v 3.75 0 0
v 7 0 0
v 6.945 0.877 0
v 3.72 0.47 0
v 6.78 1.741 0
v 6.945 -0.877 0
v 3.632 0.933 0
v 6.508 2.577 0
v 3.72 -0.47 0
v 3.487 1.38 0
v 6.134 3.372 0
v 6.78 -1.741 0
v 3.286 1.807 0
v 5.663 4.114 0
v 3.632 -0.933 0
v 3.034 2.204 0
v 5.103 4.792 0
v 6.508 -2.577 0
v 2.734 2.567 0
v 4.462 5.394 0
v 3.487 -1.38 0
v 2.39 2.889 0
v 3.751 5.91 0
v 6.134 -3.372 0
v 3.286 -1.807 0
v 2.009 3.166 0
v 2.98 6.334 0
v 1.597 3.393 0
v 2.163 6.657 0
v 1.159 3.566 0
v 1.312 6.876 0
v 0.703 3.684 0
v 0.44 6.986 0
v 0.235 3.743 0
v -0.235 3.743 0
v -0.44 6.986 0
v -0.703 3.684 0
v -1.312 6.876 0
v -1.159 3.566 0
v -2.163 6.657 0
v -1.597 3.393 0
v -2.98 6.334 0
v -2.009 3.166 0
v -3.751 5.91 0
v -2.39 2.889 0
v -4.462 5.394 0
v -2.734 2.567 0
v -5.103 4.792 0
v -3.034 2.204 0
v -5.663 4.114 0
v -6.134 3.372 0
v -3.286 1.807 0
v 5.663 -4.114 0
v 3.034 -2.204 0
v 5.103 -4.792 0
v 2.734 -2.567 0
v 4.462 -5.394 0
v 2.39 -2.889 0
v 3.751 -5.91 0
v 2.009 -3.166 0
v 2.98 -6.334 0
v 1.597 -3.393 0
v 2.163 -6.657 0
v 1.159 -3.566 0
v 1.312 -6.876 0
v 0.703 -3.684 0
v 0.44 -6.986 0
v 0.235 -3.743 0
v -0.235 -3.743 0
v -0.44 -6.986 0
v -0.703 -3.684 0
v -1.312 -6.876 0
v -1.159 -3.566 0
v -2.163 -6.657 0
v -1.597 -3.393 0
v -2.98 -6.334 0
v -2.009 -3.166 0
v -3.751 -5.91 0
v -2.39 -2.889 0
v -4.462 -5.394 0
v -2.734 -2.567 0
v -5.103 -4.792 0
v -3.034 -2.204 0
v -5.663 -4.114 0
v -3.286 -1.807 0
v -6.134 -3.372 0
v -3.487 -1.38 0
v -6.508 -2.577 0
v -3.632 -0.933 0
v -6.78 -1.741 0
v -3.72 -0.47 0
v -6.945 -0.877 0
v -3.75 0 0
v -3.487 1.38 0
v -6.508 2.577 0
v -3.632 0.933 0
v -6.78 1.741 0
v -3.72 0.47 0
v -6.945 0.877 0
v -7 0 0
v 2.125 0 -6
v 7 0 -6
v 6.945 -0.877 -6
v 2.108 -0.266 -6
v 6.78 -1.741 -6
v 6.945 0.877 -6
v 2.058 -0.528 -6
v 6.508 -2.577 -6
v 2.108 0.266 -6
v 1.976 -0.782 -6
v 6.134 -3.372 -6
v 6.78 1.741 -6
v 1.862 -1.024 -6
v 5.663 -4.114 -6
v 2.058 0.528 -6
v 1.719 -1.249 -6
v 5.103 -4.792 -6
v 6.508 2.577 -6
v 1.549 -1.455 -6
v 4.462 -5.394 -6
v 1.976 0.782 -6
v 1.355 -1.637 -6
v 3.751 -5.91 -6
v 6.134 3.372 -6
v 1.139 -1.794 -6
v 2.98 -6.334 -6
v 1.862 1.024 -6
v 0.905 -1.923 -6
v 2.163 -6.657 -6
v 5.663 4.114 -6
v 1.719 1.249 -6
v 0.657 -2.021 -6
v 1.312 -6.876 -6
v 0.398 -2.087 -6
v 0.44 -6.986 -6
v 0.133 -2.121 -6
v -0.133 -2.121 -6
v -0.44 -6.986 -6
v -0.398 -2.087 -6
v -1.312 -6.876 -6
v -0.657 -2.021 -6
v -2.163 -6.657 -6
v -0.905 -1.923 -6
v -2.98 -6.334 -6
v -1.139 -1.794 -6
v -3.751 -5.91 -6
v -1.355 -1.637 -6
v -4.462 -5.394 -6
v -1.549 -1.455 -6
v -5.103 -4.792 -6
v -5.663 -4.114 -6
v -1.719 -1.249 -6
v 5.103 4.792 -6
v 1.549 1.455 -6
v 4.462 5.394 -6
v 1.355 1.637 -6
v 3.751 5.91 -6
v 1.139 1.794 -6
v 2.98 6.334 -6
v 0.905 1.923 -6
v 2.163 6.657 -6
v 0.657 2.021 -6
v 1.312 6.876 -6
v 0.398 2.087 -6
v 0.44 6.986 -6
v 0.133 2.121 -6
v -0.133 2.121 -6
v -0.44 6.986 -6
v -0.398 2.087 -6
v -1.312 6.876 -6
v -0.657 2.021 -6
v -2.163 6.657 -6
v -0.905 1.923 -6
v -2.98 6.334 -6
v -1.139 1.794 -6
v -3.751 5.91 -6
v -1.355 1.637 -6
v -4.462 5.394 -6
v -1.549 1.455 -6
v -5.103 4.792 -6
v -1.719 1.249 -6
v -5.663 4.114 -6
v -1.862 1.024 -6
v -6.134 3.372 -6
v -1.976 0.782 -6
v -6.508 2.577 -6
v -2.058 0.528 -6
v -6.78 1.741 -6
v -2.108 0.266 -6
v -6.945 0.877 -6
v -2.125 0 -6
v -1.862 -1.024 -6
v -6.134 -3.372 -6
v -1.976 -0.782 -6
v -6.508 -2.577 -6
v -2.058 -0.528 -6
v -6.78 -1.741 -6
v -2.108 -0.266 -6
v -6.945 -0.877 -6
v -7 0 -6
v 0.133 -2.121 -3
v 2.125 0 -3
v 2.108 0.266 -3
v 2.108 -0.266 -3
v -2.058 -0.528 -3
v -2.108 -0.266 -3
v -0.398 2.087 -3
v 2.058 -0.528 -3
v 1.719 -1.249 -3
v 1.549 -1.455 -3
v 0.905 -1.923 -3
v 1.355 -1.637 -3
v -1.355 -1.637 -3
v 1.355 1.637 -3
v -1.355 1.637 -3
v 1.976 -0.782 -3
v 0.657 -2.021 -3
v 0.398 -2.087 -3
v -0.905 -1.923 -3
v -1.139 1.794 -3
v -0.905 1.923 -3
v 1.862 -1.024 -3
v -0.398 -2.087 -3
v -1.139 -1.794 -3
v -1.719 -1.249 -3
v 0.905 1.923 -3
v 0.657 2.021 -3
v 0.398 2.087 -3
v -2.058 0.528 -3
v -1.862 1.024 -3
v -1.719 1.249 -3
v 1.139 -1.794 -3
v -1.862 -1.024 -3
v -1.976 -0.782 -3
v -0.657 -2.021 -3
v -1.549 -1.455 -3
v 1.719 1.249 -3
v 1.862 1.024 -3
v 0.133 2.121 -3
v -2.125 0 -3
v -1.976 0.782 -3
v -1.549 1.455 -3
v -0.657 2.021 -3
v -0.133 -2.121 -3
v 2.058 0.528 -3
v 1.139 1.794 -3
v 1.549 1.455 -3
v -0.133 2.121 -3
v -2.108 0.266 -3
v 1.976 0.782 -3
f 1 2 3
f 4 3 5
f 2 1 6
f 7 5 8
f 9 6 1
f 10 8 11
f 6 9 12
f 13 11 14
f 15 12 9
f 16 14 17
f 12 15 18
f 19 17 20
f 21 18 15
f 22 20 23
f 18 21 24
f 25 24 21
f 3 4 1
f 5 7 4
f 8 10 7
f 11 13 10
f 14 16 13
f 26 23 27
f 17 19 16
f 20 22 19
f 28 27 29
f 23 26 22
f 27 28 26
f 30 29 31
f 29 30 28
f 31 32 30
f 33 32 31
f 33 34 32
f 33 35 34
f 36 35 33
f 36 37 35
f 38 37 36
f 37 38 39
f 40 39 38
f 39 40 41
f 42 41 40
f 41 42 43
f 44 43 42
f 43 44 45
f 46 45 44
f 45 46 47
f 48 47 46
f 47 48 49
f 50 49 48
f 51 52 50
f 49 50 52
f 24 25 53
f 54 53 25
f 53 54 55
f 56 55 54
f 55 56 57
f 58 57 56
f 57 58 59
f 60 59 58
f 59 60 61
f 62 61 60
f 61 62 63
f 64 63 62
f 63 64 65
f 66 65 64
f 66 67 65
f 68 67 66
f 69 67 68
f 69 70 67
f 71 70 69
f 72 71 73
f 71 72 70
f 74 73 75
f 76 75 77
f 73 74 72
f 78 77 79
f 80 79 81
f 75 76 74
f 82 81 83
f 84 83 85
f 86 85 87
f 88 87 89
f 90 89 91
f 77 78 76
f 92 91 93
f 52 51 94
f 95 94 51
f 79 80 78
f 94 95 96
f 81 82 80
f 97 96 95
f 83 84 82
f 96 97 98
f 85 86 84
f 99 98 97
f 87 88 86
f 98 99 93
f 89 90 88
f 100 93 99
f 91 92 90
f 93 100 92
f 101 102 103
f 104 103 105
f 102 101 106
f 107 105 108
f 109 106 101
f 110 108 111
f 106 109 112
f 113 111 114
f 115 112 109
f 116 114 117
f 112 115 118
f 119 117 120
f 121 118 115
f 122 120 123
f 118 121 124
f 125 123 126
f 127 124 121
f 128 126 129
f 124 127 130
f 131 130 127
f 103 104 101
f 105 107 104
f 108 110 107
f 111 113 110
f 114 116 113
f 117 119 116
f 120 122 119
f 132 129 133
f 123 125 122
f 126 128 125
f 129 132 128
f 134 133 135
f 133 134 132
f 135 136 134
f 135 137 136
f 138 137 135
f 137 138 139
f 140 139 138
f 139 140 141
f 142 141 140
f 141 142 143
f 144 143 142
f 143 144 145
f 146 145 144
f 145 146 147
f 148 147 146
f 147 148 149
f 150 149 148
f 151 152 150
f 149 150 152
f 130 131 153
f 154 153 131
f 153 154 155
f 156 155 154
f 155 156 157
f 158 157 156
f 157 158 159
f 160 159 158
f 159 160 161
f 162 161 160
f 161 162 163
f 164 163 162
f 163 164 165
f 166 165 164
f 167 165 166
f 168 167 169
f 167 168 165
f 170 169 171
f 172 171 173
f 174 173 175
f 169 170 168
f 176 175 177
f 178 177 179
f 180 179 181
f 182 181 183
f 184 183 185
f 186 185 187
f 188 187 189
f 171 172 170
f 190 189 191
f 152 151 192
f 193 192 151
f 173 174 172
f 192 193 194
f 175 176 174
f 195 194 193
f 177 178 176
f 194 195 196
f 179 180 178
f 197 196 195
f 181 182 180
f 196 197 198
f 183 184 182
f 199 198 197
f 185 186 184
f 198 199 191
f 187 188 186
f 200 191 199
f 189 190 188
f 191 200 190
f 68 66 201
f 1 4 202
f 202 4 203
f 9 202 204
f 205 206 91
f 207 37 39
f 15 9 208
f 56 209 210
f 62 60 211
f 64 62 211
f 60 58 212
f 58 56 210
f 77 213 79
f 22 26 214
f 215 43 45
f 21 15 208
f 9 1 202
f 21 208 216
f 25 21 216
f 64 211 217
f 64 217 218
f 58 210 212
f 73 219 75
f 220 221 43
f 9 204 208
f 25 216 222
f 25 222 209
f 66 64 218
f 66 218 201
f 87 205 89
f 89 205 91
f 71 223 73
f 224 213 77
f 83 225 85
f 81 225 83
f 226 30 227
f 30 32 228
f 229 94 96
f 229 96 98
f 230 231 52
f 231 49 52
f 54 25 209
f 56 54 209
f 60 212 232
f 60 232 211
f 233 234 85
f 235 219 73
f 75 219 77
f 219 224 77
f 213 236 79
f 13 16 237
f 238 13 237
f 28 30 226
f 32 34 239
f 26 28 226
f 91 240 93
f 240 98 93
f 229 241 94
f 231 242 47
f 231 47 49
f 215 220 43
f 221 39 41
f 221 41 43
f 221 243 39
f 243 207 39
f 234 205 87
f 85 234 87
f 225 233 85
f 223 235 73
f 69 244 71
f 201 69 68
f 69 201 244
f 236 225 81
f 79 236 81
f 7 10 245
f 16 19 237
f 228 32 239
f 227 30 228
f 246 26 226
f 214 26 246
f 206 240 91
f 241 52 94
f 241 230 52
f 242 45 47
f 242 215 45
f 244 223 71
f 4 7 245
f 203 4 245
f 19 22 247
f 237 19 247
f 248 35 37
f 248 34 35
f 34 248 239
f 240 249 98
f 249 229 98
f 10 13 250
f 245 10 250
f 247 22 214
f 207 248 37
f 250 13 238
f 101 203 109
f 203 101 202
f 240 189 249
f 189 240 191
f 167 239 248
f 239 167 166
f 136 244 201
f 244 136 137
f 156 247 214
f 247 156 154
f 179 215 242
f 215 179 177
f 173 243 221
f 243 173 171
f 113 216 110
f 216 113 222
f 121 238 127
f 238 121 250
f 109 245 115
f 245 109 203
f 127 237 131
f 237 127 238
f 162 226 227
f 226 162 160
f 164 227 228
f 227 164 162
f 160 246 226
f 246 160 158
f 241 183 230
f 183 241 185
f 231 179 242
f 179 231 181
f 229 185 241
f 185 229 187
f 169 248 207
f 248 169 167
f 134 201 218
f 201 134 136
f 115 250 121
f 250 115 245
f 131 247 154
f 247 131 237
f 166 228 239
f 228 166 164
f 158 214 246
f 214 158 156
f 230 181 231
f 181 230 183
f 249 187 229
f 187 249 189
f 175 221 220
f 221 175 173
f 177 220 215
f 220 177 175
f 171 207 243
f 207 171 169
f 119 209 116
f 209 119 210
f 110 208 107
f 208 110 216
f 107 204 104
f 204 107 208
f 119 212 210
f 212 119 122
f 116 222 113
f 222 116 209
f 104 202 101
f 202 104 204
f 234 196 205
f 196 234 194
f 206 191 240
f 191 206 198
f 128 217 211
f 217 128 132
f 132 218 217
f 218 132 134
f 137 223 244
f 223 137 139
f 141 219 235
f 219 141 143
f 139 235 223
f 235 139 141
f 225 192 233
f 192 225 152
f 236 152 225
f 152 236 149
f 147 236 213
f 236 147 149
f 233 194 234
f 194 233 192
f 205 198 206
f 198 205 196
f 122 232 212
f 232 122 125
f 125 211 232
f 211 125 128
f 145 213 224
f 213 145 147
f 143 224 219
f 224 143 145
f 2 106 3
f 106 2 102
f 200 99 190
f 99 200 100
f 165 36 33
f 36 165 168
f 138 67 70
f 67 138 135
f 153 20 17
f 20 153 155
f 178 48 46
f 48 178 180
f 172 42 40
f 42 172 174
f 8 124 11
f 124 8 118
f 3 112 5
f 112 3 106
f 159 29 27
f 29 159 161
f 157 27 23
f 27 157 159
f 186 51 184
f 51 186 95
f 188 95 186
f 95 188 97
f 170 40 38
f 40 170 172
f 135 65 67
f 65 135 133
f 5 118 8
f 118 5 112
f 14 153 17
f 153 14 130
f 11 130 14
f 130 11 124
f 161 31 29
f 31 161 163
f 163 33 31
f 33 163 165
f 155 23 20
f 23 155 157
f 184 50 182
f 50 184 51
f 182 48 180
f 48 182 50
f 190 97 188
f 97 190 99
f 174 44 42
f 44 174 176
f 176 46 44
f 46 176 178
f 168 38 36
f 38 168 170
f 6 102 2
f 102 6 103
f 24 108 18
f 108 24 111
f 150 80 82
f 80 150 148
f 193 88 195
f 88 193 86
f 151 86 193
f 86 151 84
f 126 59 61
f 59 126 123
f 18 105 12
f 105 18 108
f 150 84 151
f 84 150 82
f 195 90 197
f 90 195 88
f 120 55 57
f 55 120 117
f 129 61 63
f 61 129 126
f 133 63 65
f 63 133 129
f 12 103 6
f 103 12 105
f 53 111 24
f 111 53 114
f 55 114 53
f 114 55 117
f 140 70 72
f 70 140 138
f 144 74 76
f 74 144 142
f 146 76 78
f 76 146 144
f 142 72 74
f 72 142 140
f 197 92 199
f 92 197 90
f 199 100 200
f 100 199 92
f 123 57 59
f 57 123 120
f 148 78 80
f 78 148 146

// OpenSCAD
$fn = 50;


difference() {
	union() {
		translate(v = [0, 0, -6.0000000000]) {
			cylinder(h = 6, r = 7.0000000000);
		}
	}
	union() {
		translate(v = [0, 0, 0]) {
			rotate(a = [0, 0, 0]) {
				difference() {
					union() {
						#translate(v = [0, 0, -6.0000000000]) {
							cylinder(h = 6, r = 2.0000000000);
						}
						#translate(v = [0, 0, -3]) {
							cylinder(h = 3, r1 = 2.1250000000, r2 = 3.7500000000);
						}
						#translate(v = [0, 0, -6.0000000000]) {
							cylinder(h = 6, r = 2.1250000000);
						}
						#translate(v = [0, 0, -6.0000000000]) {
							cylinder(h = 6, r = 2.0000000000);
						}
					}
					union();
				}
			}
		}
	}
}
